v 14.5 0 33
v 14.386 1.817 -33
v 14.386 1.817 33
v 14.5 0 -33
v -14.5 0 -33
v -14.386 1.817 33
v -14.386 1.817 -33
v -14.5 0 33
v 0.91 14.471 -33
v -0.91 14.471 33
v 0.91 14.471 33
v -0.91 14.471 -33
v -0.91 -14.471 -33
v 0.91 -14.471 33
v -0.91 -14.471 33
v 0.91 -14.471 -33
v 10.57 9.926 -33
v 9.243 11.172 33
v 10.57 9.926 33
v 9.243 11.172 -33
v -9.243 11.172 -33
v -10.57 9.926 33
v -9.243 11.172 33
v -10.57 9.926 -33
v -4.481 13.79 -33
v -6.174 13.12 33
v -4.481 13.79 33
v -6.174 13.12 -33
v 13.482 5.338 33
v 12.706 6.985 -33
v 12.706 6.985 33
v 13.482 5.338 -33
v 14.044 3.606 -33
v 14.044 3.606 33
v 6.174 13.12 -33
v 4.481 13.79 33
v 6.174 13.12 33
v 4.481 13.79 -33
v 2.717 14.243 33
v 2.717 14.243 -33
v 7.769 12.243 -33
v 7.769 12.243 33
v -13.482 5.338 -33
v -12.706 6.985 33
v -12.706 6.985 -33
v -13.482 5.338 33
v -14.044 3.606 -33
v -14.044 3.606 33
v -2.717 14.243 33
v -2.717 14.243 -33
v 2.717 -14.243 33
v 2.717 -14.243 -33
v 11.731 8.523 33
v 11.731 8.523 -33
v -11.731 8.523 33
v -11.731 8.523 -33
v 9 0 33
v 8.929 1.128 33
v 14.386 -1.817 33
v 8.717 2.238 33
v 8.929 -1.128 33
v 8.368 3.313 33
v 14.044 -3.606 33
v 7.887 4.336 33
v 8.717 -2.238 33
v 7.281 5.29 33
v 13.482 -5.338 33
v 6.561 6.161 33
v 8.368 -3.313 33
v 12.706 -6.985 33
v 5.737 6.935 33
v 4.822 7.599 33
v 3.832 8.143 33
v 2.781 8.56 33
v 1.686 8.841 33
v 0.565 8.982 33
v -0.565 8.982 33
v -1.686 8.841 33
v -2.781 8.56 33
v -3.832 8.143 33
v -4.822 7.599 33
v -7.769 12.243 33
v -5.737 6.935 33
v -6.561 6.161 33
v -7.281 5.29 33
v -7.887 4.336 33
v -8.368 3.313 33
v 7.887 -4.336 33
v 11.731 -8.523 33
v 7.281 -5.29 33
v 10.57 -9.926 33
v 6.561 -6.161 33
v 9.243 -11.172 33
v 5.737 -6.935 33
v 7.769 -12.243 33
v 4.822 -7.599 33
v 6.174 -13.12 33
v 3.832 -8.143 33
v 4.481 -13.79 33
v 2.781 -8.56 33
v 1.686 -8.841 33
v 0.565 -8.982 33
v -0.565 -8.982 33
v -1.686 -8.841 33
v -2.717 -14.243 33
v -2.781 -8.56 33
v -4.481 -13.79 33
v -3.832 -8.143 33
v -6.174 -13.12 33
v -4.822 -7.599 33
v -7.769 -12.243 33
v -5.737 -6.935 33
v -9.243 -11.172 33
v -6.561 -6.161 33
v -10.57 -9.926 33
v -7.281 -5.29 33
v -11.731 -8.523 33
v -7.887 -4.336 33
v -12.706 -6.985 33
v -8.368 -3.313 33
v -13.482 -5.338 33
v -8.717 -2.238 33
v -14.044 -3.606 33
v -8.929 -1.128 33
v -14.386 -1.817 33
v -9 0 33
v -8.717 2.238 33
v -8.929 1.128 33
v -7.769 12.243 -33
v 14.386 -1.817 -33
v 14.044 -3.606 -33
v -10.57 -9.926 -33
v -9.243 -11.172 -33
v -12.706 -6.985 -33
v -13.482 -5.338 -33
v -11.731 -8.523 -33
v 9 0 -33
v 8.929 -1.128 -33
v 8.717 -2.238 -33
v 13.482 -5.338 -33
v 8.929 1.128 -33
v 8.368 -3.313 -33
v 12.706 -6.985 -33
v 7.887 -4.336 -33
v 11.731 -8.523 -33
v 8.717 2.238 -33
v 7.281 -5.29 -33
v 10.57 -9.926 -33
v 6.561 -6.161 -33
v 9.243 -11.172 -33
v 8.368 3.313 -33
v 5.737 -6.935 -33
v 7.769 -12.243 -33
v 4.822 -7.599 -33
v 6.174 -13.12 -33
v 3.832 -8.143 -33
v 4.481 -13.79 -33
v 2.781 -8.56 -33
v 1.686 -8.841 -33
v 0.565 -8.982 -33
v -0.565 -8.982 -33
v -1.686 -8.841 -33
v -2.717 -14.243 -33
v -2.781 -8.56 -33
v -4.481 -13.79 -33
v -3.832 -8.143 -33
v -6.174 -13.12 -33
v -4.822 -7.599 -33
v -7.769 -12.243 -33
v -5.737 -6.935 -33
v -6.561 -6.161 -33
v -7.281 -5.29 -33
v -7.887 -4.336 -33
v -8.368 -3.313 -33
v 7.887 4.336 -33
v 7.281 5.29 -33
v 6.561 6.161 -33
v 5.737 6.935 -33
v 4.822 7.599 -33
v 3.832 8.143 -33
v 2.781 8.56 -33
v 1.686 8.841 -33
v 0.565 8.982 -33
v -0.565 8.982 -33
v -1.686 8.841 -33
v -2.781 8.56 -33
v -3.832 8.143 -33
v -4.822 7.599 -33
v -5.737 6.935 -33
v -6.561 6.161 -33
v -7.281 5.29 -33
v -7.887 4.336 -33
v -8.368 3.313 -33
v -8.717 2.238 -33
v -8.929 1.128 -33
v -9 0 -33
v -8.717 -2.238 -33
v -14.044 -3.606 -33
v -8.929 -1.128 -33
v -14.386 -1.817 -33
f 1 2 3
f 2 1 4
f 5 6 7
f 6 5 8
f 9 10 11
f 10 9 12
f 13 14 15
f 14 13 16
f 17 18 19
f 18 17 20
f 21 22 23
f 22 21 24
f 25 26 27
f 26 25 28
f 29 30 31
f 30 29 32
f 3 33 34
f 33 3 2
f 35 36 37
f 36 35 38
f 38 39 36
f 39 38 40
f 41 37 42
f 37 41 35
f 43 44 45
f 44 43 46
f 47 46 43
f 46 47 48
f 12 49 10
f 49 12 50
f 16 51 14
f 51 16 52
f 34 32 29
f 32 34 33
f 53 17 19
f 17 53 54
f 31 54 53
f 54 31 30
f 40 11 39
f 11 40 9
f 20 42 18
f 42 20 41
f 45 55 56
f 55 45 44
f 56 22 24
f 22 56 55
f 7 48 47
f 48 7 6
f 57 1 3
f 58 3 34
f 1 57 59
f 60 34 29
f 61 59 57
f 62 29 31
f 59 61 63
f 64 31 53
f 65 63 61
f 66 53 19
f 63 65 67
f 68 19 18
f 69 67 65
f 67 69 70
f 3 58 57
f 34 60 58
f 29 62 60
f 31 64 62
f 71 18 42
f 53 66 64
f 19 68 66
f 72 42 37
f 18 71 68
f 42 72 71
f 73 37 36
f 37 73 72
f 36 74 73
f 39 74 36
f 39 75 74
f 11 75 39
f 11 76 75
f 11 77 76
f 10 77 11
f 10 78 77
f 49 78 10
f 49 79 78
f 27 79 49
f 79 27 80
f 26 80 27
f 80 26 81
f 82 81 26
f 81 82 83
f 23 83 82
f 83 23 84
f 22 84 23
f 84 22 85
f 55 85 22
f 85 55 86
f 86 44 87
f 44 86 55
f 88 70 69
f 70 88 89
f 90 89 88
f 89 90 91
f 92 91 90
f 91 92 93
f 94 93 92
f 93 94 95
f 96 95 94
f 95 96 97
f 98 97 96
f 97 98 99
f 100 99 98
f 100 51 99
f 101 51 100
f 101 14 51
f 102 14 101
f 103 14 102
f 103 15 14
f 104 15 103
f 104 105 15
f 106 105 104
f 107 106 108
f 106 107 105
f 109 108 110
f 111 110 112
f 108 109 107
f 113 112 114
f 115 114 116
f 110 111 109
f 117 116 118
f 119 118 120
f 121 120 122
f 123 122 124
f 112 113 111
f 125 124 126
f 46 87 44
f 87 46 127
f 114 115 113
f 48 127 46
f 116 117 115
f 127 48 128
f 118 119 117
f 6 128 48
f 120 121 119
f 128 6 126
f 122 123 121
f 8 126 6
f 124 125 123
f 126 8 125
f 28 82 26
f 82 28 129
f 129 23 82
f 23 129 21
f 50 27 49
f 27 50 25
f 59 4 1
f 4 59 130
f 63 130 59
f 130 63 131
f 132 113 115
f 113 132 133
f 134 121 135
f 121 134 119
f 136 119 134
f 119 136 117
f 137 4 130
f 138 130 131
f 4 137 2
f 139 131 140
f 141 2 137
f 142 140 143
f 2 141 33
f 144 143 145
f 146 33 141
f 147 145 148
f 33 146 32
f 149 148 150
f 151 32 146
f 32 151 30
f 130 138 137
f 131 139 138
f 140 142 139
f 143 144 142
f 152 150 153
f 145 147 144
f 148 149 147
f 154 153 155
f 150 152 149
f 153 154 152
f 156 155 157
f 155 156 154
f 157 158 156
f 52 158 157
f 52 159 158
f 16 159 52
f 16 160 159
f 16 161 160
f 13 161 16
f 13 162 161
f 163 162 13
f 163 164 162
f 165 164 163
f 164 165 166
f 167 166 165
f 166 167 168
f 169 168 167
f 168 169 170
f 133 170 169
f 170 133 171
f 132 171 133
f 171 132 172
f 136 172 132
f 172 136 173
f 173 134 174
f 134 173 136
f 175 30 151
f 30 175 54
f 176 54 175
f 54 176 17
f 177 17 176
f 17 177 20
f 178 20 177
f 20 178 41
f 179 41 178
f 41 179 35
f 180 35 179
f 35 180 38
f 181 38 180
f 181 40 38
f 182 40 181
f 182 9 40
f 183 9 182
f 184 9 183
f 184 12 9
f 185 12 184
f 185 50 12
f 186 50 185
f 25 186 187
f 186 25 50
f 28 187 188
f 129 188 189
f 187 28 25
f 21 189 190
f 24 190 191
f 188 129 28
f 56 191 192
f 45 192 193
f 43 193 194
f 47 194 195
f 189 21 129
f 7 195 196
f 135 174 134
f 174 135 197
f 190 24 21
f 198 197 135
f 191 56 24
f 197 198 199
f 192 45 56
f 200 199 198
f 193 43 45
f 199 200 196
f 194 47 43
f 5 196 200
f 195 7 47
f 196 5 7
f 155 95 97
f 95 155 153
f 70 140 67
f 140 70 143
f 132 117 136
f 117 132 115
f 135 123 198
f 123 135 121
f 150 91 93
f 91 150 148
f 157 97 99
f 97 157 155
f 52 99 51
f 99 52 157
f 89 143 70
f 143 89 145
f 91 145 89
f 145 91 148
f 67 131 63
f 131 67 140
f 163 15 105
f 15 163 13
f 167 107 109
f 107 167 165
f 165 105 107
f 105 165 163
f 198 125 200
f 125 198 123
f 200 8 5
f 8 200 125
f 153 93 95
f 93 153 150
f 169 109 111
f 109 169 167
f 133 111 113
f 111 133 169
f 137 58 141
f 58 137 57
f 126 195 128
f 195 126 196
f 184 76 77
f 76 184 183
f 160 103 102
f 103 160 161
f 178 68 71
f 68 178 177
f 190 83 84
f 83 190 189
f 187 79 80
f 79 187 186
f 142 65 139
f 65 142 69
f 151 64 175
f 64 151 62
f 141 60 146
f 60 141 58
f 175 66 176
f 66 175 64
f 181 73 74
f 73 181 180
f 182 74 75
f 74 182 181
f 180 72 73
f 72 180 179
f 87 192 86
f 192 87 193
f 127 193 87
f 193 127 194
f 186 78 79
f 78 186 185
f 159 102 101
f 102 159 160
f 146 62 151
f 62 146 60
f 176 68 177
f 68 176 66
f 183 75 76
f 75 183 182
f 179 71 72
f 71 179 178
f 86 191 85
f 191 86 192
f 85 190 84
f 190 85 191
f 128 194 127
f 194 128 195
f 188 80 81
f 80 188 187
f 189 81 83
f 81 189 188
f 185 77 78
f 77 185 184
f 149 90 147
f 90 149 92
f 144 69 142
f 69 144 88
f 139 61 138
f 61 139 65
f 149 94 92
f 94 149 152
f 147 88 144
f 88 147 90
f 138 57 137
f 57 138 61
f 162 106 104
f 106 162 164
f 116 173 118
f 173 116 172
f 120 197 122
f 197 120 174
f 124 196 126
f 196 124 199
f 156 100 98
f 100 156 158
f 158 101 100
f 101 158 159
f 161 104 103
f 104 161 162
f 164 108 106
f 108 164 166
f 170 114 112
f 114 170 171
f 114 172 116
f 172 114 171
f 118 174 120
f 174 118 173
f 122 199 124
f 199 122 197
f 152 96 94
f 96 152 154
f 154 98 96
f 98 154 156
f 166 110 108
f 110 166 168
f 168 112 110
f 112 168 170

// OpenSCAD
$fn = 50;


difference() {
	union() {
		translate(v = [0, 0, -33.0000000000]) {
			cylinder(h = 66, r = 14.5000000000);
		}
	}
	union() {
		translate(v = [0, 0, -100.0000000000]) {
			cylinder(h = 200, r = 9);
		}
	}
}
